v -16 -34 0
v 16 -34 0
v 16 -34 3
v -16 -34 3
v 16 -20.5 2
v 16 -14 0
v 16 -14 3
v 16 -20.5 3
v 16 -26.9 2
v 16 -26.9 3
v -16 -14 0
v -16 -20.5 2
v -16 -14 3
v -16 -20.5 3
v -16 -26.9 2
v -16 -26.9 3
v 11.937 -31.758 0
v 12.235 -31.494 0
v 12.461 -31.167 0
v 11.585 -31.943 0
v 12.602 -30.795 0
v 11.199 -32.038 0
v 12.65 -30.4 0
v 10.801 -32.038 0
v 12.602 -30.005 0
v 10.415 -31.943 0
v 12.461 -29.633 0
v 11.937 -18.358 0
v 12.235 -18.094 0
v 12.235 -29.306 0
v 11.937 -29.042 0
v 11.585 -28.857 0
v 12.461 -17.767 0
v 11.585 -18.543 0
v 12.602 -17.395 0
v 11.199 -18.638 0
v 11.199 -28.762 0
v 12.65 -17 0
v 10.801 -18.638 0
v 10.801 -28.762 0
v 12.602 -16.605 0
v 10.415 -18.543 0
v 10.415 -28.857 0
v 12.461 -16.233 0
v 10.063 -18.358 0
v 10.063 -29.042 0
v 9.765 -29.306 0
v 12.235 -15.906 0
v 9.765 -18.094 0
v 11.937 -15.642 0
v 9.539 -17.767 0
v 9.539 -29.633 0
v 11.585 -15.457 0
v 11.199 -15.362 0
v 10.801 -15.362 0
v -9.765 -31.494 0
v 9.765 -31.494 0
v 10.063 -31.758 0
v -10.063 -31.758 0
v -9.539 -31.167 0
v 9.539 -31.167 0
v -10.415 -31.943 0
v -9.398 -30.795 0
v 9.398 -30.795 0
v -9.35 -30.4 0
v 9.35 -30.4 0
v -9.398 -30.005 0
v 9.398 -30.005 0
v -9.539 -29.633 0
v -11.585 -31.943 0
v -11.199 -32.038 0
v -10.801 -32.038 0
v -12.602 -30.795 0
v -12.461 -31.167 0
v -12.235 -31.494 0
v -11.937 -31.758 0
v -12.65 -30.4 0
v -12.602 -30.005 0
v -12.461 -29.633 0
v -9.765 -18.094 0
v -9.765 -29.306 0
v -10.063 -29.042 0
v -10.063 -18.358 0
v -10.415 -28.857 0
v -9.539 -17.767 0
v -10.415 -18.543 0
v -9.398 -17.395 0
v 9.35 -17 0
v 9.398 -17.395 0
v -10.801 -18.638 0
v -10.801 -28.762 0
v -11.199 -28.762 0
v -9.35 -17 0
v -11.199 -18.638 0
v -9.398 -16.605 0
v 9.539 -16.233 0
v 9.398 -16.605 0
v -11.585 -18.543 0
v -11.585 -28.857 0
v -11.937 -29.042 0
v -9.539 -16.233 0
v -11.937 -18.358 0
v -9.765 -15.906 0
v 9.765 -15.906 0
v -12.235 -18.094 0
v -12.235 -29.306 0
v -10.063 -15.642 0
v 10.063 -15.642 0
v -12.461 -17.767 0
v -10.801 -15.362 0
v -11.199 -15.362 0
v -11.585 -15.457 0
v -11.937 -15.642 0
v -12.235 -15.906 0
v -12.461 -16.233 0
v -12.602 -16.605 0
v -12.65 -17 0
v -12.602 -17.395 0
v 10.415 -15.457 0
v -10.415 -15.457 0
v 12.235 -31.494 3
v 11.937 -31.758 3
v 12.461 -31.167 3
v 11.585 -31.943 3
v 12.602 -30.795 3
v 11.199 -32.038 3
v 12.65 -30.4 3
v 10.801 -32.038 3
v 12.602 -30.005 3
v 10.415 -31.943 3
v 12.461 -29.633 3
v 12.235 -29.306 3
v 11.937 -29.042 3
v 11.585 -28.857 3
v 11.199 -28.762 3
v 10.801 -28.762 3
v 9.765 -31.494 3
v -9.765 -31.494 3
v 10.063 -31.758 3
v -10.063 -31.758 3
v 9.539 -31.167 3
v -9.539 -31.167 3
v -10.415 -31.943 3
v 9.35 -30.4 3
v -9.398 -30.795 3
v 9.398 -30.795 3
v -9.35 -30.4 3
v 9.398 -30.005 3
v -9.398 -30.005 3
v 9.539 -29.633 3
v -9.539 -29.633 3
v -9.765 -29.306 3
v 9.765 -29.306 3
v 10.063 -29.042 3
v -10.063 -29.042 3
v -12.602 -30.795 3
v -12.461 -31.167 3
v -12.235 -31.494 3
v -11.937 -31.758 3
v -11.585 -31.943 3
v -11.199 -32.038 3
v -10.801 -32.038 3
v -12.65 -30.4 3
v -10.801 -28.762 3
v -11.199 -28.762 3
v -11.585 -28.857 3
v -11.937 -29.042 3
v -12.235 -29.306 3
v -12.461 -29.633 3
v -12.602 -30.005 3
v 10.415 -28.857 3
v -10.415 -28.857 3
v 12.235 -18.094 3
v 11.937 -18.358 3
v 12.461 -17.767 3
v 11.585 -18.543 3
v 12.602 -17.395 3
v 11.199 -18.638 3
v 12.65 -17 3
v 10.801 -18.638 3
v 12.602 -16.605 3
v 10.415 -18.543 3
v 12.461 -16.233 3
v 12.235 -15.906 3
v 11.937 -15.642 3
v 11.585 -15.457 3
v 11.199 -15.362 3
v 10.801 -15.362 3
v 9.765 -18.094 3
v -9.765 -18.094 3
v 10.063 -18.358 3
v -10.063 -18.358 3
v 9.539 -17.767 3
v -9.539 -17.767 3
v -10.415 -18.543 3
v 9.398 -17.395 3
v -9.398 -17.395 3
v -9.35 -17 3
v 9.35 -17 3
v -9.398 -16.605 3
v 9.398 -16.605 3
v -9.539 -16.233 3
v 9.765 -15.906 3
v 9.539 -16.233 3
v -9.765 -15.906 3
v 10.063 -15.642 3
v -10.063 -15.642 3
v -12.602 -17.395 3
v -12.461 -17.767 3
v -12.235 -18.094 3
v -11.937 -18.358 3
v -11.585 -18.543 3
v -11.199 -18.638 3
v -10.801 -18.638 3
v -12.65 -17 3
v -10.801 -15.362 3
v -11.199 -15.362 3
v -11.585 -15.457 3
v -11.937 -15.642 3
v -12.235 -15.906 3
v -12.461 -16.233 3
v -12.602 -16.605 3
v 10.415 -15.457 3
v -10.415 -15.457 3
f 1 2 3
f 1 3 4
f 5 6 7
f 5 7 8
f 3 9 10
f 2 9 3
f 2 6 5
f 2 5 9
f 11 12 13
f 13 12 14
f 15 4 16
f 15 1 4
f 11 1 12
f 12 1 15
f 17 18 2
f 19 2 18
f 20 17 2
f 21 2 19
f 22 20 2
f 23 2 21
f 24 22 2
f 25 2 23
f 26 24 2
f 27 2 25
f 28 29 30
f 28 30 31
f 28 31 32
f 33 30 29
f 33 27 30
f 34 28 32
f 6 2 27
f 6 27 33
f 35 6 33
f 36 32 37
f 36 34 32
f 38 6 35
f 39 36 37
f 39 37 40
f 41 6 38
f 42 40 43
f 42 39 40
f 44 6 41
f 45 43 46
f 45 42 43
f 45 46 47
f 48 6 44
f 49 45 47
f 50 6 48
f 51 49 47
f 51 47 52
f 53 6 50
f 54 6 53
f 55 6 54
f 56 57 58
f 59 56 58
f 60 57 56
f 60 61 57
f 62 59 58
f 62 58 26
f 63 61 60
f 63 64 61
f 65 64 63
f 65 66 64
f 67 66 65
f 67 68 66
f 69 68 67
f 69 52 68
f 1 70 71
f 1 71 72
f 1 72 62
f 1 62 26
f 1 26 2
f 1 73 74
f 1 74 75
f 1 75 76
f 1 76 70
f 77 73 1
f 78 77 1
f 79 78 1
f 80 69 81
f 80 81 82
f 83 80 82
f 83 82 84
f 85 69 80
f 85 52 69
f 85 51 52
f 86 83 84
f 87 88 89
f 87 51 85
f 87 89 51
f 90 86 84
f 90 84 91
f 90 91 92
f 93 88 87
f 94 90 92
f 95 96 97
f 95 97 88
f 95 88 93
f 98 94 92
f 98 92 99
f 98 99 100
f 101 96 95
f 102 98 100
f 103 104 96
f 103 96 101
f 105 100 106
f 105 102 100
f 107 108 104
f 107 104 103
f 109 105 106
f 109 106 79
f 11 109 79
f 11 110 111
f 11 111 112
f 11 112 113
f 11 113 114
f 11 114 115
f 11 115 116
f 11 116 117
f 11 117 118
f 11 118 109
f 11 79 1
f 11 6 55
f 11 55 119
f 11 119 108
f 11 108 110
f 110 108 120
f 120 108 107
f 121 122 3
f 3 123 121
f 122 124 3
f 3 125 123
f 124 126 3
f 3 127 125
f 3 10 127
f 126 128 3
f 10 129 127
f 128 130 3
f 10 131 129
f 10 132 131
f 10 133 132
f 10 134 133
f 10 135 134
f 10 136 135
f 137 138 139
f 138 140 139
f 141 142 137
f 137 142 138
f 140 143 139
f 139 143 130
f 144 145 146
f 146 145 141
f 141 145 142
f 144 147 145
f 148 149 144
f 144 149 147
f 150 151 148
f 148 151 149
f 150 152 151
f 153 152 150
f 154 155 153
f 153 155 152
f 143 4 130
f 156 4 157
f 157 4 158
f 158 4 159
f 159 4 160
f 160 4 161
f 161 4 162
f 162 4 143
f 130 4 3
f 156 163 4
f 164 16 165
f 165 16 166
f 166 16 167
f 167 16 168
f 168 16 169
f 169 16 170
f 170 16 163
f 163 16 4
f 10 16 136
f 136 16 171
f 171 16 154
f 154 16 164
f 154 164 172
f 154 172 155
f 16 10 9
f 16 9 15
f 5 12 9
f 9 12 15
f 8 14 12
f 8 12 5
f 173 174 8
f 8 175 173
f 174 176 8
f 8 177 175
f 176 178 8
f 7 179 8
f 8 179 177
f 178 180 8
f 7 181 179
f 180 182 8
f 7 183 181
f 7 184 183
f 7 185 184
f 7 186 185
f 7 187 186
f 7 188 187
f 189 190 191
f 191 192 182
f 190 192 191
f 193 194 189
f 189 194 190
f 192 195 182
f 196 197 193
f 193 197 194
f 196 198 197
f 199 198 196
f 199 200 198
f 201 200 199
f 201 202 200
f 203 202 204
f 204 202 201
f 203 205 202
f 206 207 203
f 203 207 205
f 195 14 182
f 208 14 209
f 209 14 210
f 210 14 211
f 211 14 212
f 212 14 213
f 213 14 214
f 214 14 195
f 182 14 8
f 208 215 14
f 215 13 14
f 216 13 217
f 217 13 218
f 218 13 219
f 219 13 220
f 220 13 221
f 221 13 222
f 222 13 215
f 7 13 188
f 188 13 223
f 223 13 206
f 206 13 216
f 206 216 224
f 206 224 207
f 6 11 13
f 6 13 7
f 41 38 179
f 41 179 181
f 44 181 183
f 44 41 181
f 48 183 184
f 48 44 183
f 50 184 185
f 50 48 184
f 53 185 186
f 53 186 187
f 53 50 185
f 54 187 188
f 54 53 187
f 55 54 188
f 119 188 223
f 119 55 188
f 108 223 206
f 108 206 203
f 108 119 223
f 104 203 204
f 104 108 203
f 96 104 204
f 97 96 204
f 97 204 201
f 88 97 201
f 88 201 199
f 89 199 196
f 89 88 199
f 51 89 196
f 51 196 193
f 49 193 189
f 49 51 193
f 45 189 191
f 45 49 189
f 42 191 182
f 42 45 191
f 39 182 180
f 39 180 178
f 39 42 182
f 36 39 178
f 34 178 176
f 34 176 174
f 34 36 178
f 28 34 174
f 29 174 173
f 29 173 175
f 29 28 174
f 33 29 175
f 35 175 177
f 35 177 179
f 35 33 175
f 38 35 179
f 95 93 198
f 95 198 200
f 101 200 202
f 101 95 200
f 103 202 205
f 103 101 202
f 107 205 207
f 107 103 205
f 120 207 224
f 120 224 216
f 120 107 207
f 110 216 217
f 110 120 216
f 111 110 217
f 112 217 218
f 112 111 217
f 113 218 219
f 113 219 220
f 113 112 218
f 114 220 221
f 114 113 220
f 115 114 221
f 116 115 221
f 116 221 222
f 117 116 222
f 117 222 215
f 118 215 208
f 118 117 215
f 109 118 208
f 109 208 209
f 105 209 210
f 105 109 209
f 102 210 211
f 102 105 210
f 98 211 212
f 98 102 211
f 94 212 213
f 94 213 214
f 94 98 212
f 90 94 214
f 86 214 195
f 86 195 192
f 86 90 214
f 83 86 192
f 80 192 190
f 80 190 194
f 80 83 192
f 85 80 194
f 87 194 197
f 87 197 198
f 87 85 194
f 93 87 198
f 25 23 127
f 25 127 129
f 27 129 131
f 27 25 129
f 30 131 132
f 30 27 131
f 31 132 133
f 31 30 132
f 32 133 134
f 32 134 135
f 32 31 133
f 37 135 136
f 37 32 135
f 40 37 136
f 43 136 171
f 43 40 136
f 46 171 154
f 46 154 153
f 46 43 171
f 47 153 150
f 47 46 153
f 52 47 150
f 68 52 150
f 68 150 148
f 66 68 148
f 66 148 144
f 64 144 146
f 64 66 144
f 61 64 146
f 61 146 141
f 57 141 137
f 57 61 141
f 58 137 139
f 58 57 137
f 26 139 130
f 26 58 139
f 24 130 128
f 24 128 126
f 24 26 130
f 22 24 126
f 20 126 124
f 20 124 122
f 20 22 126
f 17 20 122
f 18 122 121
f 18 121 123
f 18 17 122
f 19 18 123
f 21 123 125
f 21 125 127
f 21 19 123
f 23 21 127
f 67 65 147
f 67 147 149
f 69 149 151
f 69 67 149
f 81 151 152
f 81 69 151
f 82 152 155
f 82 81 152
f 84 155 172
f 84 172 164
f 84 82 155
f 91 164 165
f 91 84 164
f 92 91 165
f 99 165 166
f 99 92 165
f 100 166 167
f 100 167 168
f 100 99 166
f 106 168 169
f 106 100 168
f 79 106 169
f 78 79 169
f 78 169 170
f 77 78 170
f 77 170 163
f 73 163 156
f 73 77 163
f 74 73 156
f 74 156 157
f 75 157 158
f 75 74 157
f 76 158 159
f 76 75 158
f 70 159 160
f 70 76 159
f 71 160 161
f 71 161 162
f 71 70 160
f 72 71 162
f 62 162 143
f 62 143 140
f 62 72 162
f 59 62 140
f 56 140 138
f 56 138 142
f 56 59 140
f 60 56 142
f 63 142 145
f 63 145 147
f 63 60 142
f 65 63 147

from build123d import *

# Parameters (mm, degrees)
SKETCH_W     = 32
SKETCH_H     = 20
SKETCH_R     = 1.65
PAD_DEPTH    = 3
SKETCH001_W  = 50.742166
SKETCH001_H  = 6.4
POCKET_DEPTH = 1


with BuildPart() as part:
    # Sketch → Pad (new body)
    with BuildSketch(Plane.XY):
        with Locations((0, -24)):
            Rectangle(SKETCH_W, SKETCH_H)
        with Locations((-11, -17)):
            Circle(SKETCH_R, mode=Mode.SUBTRACT)
        with Locations((11, -17)):
            Circle(SKETCH_R, mode=Mode.SUBTRACT)
        with Locations((-11, -30.4)):
            Circle(SKETCH_R, mode=Mode.SUBTRACT)
        with Locations((11, -30.4)):
            Circle(SKETCH_R, mode=Mode.SUBTRACT)
    extrude(amount=PAD_DEPTH)

    # Sketch001 (on Face10 of Pad) → Pocket (cut)
    with BuildSketch(Plane.XY.offset(3)):
        with Locations((0.273011, -23.7)):
            Rectangle(SKETCH001_W, SKETCH001_H)
    extrude(amount=-POCKET_DEPTH, mode=Mode.SUBTRACT)


solid = part.part
